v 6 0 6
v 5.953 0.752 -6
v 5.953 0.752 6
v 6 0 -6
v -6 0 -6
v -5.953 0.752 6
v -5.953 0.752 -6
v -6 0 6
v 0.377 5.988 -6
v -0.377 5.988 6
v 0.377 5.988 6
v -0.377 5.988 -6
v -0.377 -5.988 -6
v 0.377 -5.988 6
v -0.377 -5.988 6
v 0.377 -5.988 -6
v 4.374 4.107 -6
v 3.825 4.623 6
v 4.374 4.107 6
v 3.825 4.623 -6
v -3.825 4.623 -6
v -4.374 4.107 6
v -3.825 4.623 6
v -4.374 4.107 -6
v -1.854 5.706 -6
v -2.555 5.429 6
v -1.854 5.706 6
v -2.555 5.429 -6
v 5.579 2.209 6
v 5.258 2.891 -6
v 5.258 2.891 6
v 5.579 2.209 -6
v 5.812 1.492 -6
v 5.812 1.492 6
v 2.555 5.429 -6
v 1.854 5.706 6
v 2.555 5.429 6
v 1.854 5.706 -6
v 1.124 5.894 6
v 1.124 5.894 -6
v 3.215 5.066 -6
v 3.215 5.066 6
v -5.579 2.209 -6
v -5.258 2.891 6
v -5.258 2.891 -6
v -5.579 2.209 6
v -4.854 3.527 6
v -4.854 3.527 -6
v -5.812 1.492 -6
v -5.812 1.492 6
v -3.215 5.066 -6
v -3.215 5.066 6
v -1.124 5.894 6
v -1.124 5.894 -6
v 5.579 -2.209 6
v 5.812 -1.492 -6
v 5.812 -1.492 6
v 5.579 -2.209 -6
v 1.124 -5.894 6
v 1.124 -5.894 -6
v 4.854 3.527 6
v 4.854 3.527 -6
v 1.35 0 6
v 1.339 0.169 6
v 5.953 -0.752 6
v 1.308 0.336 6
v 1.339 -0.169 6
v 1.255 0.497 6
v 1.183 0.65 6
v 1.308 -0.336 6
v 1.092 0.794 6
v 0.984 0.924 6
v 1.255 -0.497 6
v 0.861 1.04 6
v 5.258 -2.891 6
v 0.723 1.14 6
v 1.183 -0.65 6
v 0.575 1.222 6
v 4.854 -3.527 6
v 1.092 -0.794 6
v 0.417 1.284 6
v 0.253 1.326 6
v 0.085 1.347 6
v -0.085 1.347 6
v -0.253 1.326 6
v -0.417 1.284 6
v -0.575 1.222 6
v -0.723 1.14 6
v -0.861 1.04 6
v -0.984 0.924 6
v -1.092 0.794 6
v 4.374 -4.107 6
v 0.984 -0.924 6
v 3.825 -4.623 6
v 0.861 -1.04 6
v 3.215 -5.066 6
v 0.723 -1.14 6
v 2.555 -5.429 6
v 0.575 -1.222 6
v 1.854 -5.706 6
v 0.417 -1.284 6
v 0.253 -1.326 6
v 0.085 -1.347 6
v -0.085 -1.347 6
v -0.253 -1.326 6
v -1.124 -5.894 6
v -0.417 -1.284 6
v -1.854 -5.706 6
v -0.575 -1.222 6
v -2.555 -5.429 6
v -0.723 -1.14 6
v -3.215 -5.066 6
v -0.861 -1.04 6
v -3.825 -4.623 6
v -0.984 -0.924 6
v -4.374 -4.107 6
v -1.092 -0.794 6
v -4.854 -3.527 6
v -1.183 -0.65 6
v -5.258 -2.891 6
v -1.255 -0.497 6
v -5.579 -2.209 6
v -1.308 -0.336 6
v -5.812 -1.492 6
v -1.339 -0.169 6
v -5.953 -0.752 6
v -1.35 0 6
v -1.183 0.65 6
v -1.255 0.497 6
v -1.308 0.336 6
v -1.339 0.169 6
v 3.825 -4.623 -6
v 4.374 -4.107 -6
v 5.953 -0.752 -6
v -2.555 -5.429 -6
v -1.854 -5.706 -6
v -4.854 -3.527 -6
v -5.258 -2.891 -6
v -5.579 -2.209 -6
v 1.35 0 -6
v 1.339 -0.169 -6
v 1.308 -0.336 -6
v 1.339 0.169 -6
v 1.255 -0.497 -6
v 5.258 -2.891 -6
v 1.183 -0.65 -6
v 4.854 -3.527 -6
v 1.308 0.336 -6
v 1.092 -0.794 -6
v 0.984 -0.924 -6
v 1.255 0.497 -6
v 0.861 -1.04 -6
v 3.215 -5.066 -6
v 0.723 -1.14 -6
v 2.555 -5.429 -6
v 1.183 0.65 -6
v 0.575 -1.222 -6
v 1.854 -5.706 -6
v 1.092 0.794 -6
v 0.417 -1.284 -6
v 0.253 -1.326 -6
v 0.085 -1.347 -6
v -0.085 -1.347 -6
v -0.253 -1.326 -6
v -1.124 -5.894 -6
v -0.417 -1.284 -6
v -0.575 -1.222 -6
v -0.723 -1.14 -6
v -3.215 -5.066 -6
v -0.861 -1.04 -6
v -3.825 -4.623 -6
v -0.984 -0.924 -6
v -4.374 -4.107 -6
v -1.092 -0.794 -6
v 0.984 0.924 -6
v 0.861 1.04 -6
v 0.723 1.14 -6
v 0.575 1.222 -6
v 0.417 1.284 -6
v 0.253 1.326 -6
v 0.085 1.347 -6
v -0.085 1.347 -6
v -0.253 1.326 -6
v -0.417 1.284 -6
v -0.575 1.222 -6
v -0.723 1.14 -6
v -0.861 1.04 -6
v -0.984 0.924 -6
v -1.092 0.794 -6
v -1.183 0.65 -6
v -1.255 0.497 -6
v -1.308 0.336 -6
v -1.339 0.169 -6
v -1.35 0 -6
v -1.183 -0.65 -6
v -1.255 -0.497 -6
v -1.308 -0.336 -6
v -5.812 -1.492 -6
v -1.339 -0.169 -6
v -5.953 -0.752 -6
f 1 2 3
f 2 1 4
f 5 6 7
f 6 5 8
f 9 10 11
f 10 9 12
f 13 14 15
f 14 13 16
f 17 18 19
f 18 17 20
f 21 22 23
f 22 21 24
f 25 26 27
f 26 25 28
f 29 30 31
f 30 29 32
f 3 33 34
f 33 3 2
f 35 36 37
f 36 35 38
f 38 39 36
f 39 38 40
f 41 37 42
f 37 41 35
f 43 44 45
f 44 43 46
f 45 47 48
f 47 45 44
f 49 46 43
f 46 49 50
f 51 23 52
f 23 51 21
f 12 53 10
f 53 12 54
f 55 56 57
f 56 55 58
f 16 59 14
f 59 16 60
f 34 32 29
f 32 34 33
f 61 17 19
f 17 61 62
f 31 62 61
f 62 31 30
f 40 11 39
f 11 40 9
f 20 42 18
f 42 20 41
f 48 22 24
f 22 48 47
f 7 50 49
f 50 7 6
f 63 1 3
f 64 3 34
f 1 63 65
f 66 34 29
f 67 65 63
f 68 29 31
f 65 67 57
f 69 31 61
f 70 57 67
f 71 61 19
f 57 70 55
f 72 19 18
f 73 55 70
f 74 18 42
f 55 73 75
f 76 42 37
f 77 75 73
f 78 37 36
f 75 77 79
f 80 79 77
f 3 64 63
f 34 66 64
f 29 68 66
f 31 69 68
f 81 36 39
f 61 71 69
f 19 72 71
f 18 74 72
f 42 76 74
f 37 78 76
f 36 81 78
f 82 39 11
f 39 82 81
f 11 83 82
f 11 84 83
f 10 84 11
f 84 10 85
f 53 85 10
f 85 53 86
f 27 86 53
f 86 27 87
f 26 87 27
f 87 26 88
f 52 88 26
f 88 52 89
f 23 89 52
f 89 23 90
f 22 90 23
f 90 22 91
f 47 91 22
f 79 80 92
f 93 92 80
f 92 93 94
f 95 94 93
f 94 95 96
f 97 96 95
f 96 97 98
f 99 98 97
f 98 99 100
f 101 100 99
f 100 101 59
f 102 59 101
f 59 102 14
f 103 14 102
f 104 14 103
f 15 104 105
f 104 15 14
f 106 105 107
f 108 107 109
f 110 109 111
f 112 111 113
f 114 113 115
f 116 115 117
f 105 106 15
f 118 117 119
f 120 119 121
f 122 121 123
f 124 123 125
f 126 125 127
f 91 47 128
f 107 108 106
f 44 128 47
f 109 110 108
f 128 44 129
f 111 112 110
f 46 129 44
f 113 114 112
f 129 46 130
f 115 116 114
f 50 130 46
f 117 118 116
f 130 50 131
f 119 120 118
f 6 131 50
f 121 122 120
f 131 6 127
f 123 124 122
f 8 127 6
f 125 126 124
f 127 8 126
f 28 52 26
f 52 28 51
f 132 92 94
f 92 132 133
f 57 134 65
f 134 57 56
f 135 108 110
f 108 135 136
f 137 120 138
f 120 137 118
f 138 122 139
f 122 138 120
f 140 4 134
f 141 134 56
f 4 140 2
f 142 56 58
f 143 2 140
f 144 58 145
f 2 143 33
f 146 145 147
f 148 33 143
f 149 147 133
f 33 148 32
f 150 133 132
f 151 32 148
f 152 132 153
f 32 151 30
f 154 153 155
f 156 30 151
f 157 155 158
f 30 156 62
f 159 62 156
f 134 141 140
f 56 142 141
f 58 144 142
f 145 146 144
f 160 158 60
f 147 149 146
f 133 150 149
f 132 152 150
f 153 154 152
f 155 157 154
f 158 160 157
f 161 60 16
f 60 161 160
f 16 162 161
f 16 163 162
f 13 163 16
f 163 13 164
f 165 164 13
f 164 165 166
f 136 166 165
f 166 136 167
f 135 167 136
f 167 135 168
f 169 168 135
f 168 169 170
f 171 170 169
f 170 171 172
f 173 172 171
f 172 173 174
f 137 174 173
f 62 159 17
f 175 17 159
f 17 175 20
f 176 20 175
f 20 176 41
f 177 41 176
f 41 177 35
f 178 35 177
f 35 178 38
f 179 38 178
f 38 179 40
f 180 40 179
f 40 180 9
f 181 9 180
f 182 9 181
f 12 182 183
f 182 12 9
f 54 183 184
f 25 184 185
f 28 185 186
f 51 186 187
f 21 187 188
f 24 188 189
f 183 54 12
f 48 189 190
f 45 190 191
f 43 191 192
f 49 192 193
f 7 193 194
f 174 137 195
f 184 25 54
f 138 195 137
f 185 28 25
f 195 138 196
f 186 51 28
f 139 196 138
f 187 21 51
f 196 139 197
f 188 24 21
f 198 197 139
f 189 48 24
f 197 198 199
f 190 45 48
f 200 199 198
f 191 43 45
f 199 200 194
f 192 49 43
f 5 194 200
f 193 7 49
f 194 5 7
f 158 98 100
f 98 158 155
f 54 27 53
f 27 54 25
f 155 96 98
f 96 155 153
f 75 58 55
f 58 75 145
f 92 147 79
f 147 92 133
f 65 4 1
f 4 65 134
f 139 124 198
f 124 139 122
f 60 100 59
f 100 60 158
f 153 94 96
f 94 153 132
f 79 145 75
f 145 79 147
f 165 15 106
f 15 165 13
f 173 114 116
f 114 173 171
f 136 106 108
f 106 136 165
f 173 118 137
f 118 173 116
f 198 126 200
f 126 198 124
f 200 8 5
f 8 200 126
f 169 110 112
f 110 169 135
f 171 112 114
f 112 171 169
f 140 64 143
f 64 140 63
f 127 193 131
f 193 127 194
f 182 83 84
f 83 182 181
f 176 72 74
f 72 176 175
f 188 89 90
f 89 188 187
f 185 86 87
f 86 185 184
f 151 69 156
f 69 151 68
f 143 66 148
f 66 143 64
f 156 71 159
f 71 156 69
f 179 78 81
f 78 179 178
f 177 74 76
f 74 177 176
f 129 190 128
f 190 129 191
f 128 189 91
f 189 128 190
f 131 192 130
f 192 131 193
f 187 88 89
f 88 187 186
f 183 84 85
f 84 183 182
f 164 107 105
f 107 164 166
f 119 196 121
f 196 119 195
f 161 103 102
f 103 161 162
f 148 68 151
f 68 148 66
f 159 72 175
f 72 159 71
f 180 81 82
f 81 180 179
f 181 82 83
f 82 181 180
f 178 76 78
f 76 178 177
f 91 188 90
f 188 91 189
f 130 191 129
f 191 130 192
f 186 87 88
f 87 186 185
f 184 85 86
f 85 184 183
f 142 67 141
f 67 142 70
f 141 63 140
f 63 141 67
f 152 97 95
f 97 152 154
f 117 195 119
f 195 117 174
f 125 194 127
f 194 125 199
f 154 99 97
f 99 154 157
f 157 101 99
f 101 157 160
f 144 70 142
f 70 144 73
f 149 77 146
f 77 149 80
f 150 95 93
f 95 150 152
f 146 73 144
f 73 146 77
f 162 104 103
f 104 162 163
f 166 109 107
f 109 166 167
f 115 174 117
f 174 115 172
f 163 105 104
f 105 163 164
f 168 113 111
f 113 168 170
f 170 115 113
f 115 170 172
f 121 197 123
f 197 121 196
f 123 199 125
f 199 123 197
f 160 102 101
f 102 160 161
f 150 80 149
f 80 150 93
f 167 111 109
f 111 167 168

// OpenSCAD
$fn = 50;


difference() {
	union() {
		translate(v = [0, 0, -6.0000000000]) {
			cylinder(h = 12, r = 6.0000000000);
		}
	}
	union() {
		translate(v = [0, 0, -100.0000000000]) {
			cylinder(h = 200, r = 1.3500000000);
		}
	}
}
